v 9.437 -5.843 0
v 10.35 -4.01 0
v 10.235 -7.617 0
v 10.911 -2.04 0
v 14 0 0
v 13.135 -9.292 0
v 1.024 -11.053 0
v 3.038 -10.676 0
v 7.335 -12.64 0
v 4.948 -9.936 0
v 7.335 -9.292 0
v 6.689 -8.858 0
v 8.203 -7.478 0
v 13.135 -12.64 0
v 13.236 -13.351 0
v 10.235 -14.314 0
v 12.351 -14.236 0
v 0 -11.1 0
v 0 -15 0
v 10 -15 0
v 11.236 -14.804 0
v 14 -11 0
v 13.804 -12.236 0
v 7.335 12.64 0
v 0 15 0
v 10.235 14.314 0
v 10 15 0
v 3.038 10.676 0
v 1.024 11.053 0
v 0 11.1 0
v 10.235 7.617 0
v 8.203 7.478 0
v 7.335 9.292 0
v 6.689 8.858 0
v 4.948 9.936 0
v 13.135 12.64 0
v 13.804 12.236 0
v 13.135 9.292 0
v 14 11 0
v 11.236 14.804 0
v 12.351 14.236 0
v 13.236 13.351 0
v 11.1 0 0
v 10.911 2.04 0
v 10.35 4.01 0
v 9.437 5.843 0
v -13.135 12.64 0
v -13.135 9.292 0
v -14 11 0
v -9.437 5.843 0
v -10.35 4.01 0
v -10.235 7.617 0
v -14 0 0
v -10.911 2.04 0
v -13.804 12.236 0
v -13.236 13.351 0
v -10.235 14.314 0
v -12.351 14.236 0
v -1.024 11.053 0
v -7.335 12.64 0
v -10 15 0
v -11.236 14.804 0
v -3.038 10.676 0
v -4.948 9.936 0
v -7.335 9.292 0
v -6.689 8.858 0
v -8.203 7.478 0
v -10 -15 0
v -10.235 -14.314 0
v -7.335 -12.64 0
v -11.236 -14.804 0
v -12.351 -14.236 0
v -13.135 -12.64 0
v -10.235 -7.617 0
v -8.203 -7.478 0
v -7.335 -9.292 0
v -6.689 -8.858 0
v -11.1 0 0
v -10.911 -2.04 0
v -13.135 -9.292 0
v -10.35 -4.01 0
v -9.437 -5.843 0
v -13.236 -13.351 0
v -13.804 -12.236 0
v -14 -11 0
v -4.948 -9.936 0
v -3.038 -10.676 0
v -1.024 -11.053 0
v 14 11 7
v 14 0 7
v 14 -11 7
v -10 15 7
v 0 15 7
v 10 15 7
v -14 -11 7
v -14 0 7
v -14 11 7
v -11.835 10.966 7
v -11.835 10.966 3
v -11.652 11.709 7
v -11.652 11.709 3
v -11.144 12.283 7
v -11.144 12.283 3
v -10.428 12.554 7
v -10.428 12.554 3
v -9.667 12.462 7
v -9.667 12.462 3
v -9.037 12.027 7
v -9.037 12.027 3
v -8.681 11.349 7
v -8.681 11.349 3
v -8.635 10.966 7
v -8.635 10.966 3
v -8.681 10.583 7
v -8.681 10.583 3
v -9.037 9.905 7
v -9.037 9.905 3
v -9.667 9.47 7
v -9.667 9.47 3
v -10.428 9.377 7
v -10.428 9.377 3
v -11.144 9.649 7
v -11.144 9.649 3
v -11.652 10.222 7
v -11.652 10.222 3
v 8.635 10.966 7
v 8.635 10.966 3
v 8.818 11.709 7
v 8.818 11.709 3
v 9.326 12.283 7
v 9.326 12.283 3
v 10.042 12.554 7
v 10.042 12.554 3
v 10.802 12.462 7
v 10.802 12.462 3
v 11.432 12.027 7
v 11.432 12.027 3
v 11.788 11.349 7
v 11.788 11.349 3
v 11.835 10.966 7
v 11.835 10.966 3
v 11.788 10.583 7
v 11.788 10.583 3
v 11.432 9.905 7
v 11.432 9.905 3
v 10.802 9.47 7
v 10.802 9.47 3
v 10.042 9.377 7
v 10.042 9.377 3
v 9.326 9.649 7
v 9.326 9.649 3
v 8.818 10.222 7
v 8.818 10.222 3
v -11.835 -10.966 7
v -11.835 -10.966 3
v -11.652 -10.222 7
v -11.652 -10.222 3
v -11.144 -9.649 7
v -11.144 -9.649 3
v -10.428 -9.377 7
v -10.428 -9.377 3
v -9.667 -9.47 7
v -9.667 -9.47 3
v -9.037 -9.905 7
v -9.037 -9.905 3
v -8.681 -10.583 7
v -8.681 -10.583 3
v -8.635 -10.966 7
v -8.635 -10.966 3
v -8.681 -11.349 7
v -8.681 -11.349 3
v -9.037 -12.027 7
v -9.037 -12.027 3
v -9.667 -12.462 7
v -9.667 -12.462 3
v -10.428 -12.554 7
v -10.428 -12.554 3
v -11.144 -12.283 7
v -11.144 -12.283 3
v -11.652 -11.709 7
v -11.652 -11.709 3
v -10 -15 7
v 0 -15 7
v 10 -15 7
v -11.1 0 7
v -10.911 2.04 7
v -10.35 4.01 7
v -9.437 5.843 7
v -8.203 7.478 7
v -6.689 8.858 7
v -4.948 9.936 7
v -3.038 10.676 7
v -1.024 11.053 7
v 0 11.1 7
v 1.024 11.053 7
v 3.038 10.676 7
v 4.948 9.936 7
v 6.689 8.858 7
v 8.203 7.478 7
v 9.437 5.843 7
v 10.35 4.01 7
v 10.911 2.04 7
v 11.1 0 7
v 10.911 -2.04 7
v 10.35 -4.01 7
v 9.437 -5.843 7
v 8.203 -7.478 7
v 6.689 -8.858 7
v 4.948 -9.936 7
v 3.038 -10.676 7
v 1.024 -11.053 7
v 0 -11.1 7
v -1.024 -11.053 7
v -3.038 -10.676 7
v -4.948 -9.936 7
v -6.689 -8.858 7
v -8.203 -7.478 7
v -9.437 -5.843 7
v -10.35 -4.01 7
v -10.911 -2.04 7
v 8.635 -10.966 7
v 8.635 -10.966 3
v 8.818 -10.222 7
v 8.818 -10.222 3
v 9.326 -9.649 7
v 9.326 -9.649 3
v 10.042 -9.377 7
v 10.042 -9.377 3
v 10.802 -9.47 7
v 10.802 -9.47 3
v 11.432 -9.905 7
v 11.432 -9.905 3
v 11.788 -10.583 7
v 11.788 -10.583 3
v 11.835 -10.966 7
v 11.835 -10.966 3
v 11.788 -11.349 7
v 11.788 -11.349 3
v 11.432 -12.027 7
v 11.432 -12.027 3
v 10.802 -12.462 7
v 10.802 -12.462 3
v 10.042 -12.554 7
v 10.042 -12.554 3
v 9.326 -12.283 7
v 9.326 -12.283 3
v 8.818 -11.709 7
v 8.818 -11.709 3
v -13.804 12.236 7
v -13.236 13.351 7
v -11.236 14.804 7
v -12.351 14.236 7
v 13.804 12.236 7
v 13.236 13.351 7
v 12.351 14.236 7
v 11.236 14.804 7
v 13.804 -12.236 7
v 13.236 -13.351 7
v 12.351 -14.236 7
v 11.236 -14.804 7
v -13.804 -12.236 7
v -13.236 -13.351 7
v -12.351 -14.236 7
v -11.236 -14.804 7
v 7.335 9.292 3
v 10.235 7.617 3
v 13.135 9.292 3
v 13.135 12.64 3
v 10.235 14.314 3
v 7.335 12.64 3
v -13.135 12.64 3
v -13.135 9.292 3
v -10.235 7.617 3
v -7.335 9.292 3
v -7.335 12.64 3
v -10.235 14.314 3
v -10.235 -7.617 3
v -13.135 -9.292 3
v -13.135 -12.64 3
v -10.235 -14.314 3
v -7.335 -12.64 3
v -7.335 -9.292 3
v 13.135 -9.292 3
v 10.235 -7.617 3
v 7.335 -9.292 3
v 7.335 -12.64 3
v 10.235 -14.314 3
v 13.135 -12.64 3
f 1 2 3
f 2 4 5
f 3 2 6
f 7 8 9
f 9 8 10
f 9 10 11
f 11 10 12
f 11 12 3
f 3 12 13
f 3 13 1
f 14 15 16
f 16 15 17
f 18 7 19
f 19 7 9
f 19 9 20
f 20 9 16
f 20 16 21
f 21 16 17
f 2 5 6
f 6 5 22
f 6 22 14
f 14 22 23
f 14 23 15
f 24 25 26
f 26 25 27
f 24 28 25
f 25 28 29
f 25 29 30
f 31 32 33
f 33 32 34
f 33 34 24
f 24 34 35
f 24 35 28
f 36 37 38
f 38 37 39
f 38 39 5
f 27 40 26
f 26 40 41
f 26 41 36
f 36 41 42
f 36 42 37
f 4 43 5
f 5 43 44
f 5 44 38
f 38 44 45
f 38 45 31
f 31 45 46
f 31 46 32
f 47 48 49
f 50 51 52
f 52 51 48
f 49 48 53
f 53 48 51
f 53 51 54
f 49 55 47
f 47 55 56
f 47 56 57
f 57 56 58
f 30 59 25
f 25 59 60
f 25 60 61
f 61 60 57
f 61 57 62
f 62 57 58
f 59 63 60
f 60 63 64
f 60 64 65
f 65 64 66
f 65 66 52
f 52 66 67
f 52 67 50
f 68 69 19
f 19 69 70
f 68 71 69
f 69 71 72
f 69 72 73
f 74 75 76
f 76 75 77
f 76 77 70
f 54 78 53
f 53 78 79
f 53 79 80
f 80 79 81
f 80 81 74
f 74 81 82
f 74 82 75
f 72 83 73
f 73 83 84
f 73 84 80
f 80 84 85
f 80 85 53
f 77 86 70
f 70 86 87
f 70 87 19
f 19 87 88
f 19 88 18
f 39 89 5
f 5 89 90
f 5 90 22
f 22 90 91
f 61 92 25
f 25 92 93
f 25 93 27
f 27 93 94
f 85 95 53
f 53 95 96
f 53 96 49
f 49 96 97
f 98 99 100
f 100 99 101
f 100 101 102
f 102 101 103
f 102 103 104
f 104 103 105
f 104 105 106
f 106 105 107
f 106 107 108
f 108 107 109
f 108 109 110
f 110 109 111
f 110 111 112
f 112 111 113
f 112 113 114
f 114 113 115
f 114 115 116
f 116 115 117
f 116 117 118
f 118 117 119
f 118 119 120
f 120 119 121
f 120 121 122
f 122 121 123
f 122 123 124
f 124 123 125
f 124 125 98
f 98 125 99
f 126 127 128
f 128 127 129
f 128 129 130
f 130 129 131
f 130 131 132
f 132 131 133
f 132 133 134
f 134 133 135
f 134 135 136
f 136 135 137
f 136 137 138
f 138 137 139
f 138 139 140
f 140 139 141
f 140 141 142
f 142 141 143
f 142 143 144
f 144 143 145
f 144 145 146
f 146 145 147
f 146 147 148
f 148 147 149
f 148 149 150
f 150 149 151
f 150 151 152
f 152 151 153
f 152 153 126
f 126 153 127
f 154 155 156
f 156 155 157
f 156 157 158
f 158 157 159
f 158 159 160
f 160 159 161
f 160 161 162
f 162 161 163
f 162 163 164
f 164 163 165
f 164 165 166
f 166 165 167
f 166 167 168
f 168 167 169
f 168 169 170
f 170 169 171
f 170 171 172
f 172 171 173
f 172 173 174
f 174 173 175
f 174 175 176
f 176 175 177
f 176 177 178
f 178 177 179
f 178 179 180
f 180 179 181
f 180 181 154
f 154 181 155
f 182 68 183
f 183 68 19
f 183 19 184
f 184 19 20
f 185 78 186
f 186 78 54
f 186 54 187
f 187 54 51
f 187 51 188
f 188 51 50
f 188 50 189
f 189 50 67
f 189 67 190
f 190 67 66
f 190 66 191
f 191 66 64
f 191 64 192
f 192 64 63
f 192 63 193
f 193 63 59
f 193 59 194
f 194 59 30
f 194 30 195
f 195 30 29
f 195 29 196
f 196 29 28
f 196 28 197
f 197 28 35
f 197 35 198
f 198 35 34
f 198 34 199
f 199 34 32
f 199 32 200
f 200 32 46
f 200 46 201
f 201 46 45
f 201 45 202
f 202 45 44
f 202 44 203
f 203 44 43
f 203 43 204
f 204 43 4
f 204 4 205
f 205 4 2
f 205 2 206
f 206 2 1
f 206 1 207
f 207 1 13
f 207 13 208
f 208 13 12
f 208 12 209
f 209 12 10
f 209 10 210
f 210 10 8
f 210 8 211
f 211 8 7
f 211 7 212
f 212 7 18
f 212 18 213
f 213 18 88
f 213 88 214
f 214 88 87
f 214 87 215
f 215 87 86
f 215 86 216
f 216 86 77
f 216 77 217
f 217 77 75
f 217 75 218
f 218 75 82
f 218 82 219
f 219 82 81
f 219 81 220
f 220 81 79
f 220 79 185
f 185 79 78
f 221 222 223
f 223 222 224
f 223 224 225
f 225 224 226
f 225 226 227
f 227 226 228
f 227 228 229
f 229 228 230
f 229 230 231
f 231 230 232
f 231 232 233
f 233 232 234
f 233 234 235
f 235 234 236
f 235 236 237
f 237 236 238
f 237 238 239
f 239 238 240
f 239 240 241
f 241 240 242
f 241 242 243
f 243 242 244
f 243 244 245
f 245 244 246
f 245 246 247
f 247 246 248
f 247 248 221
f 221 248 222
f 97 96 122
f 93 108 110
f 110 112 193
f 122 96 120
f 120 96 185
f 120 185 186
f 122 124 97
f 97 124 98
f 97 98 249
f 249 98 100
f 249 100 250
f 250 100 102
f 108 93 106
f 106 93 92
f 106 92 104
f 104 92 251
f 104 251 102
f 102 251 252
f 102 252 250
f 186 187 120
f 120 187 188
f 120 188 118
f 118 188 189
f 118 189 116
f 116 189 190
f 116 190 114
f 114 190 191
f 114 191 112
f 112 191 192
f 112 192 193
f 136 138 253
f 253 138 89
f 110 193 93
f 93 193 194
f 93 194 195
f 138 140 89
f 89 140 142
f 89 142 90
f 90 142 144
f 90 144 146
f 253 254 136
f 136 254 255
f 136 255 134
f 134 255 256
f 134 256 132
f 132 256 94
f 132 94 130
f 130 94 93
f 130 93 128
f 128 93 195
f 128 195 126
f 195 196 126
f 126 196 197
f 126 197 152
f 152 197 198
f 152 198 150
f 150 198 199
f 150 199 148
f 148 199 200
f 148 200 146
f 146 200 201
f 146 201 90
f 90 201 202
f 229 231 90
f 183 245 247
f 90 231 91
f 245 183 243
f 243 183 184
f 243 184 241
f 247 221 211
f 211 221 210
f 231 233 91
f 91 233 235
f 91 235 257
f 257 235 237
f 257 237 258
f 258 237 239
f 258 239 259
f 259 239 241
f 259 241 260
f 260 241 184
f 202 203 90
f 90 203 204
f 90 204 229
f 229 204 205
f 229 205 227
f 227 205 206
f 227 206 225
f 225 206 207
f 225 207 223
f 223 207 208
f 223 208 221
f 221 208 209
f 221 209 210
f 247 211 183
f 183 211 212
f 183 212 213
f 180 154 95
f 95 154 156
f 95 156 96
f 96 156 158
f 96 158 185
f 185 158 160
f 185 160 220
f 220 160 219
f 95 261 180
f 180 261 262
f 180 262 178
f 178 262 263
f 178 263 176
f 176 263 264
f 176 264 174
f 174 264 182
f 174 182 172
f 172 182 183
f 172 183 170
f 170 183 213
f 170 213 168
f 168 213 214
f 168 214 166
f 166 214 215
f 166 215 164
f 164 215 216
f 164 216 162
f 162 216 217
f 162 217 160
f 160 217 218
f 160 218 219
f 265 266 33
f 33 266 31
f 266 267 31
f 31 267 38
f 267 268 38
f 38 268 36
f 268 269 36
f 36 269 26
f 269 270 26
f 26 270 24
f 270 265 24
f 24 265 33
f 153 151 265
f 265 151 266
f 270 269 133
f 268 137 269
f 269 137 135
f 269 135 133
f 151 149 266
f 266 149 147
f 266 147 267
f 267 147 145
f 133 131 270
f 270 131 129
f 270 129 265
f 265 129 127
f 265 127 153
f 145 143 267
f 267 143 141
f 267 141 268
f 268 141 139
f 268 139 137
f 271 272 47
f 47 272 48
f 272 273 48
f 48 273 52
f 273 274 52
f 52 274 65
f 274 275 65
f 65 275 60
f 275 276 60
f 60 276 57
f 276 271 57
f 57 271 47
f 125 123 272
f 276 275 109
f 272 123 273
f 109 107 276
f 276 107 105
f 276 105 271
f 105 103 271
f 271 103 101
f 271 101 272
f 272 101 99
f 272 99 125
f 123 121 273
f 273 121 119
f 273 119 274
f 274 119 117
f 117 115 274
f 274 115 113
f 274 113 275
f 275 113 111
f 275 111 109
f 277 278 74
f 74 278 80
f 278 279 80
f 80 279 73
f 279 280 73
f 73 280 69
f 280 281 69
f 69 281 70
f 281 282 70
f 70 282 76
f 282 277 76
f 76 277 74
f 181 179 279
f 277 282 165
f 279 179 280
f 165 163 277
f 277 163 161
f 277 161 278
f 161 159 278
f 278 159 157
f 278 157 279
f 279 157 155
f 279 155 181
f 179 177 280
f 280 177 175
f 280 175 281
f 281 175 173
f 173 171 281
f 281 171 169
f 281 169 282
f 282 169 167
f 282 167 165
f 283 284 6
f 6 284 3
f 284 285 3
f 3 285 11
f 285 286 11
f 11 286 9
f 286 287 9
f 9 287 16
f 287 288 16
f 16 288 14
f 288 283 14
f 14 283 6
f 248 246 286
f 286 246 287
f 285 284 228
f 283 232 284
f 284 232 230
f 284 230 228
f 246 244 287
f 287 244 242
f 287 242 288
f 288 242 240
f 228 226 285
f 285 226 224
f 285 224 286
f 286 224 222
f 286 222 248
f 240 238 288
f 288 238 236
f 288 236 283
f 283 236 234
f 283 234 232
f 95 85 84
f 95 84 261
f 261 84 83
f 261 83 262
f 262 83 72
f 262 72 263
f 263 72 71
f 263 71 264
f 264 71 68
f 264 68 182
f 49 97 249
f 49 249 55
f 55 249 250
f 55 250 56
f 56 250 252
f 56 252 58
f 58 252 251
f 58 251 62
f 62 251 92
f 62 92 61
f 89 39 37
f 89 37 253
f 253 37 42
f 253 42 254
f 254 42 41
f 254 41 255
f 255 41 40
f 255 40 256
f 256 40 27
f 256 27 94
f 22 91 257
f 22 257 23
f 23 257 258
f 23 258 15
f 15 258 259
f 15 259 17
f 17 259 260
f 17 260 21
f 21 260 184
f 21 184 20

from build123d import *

# Parameters (mm, degrees)
SKETCH1_W           = 28
SKETCH1_H           = 30
SKETCH1_R           = 11.1
SKETCH1_R_2         = 1.6
BOSS_EXTRUDE1_DEPTH = 7
SKETCH1_4_R         = 1.6
CUT_EXTRUDE3_DEPTH  = 3
FILLET5_R           = 4


with BuildPart() as part:
    # Sketch1 → Boss-Extrude1 (new body)
    with BuildSketch(Plane.XY):
        Rectangle(SKETCH1_W, SKETCH1_H)
        Circle(SKETCH1_R, mode=Mode.SUBTRACT)
        with Locations((-10.234773755, -10.965829024)):
            Circle(SKETCH1_R_2, mode=Mode.SUBTRACT)
        with Locations((10.234773755, -10.965829024)):
            Circle(SKETCH1_R_2, mode=Mode.SUBTRACT)
        with Locations((-10.234773755, 10.965829024)):
            Circle(SKETCH1_R_2, mode=Mode.SUBTRACT)
        with Locations((10.234773755, 10.965829024)):
            Circle(SKETCH1_R_2, mode=Mode.SUBTRACT)
    extrude(amount=BOSS_EXTRUDE1_DEPTH)

    # Sketch1<4> → Cut-Extrude3 (cut)
    # profile 1 of 4: a face of its own
    with BuildSketch(Plane.XY):
        Polygon((-13.134773755, 9.291513243), (-10.234773755, 7.617197462), (-7.334773755, 9.291513243), (-7.334773755, 12.640144804), (-10.234773755, 14.314460585), (-13.134773755, 12.640144804), align=None)
        with Locations((-10.234773755, 10.965829024)):
            Circle(SKETCH1_4_R, mode=Mode.SUBTRACT)
    # profile 2 of 4: a face of its own
    with BuildSketch(Plane.XY):
        Polygon((10.234773755, 7.617197462), (13.134773755, 9.291513243), (13.134773755, 12.640144804), (10.234773755, 14.314460585), (7.334773755, 12.640144804), (7.334773755, 9.291513243), align=None)
        with Locations((10.234773755, 10.965829024)):
            Circle(SKETCH1_4_R, mode=Mode.SUBTRACT)
    # profile 3 of 4: a face of its own
    with BuildSketch(Plane.XY):
        Polygon((-7.334773755, -9.291513243), (-10.234773755, -7.617197462), (-13.134773755, -9.291513243), (-13.134773755, -12.640144804), (-10.234773755, -14.314460585), (-7.334773755, -12.640144804), align=None)
        with Locations((-10.234773755, -10.965829024)):
            Circle(SKETCH1_4_R, mode=Mode.SUBTRACT)
    # profile 4 of 4: a face of its own
    with BuildSketch(Plane.XY):
        Polygon((13.134773755, -12.640144804), (13.134773755, -9.291513243), (10.234773755, -7.617197462), (7.334773755, -9.291513243), (7.334773755, -12.640144804), (10.234773755, -14.314460585), align=None)
        with Locations((10.234773755, -10.965829024)):
            Circle(SKETCH1_4_R, mode=Mode.SUBTRACT)
    extrude(amount=CUT_EXTRUDE3_DEPTH, mode=Mode.SUBTRACT)

    # Fillet5
    fillet5_edges = [part.edges().sort_by_distance(p)[0] for p in [
        (-14, 15, 3.5),
        (-14, -15, 3.5),
        (14, 15, 3.5),
        (14, -15, 3.5),
    ]]
    fillet(fillet5_edges, radius=FILLET5_R)


solid = part.part
